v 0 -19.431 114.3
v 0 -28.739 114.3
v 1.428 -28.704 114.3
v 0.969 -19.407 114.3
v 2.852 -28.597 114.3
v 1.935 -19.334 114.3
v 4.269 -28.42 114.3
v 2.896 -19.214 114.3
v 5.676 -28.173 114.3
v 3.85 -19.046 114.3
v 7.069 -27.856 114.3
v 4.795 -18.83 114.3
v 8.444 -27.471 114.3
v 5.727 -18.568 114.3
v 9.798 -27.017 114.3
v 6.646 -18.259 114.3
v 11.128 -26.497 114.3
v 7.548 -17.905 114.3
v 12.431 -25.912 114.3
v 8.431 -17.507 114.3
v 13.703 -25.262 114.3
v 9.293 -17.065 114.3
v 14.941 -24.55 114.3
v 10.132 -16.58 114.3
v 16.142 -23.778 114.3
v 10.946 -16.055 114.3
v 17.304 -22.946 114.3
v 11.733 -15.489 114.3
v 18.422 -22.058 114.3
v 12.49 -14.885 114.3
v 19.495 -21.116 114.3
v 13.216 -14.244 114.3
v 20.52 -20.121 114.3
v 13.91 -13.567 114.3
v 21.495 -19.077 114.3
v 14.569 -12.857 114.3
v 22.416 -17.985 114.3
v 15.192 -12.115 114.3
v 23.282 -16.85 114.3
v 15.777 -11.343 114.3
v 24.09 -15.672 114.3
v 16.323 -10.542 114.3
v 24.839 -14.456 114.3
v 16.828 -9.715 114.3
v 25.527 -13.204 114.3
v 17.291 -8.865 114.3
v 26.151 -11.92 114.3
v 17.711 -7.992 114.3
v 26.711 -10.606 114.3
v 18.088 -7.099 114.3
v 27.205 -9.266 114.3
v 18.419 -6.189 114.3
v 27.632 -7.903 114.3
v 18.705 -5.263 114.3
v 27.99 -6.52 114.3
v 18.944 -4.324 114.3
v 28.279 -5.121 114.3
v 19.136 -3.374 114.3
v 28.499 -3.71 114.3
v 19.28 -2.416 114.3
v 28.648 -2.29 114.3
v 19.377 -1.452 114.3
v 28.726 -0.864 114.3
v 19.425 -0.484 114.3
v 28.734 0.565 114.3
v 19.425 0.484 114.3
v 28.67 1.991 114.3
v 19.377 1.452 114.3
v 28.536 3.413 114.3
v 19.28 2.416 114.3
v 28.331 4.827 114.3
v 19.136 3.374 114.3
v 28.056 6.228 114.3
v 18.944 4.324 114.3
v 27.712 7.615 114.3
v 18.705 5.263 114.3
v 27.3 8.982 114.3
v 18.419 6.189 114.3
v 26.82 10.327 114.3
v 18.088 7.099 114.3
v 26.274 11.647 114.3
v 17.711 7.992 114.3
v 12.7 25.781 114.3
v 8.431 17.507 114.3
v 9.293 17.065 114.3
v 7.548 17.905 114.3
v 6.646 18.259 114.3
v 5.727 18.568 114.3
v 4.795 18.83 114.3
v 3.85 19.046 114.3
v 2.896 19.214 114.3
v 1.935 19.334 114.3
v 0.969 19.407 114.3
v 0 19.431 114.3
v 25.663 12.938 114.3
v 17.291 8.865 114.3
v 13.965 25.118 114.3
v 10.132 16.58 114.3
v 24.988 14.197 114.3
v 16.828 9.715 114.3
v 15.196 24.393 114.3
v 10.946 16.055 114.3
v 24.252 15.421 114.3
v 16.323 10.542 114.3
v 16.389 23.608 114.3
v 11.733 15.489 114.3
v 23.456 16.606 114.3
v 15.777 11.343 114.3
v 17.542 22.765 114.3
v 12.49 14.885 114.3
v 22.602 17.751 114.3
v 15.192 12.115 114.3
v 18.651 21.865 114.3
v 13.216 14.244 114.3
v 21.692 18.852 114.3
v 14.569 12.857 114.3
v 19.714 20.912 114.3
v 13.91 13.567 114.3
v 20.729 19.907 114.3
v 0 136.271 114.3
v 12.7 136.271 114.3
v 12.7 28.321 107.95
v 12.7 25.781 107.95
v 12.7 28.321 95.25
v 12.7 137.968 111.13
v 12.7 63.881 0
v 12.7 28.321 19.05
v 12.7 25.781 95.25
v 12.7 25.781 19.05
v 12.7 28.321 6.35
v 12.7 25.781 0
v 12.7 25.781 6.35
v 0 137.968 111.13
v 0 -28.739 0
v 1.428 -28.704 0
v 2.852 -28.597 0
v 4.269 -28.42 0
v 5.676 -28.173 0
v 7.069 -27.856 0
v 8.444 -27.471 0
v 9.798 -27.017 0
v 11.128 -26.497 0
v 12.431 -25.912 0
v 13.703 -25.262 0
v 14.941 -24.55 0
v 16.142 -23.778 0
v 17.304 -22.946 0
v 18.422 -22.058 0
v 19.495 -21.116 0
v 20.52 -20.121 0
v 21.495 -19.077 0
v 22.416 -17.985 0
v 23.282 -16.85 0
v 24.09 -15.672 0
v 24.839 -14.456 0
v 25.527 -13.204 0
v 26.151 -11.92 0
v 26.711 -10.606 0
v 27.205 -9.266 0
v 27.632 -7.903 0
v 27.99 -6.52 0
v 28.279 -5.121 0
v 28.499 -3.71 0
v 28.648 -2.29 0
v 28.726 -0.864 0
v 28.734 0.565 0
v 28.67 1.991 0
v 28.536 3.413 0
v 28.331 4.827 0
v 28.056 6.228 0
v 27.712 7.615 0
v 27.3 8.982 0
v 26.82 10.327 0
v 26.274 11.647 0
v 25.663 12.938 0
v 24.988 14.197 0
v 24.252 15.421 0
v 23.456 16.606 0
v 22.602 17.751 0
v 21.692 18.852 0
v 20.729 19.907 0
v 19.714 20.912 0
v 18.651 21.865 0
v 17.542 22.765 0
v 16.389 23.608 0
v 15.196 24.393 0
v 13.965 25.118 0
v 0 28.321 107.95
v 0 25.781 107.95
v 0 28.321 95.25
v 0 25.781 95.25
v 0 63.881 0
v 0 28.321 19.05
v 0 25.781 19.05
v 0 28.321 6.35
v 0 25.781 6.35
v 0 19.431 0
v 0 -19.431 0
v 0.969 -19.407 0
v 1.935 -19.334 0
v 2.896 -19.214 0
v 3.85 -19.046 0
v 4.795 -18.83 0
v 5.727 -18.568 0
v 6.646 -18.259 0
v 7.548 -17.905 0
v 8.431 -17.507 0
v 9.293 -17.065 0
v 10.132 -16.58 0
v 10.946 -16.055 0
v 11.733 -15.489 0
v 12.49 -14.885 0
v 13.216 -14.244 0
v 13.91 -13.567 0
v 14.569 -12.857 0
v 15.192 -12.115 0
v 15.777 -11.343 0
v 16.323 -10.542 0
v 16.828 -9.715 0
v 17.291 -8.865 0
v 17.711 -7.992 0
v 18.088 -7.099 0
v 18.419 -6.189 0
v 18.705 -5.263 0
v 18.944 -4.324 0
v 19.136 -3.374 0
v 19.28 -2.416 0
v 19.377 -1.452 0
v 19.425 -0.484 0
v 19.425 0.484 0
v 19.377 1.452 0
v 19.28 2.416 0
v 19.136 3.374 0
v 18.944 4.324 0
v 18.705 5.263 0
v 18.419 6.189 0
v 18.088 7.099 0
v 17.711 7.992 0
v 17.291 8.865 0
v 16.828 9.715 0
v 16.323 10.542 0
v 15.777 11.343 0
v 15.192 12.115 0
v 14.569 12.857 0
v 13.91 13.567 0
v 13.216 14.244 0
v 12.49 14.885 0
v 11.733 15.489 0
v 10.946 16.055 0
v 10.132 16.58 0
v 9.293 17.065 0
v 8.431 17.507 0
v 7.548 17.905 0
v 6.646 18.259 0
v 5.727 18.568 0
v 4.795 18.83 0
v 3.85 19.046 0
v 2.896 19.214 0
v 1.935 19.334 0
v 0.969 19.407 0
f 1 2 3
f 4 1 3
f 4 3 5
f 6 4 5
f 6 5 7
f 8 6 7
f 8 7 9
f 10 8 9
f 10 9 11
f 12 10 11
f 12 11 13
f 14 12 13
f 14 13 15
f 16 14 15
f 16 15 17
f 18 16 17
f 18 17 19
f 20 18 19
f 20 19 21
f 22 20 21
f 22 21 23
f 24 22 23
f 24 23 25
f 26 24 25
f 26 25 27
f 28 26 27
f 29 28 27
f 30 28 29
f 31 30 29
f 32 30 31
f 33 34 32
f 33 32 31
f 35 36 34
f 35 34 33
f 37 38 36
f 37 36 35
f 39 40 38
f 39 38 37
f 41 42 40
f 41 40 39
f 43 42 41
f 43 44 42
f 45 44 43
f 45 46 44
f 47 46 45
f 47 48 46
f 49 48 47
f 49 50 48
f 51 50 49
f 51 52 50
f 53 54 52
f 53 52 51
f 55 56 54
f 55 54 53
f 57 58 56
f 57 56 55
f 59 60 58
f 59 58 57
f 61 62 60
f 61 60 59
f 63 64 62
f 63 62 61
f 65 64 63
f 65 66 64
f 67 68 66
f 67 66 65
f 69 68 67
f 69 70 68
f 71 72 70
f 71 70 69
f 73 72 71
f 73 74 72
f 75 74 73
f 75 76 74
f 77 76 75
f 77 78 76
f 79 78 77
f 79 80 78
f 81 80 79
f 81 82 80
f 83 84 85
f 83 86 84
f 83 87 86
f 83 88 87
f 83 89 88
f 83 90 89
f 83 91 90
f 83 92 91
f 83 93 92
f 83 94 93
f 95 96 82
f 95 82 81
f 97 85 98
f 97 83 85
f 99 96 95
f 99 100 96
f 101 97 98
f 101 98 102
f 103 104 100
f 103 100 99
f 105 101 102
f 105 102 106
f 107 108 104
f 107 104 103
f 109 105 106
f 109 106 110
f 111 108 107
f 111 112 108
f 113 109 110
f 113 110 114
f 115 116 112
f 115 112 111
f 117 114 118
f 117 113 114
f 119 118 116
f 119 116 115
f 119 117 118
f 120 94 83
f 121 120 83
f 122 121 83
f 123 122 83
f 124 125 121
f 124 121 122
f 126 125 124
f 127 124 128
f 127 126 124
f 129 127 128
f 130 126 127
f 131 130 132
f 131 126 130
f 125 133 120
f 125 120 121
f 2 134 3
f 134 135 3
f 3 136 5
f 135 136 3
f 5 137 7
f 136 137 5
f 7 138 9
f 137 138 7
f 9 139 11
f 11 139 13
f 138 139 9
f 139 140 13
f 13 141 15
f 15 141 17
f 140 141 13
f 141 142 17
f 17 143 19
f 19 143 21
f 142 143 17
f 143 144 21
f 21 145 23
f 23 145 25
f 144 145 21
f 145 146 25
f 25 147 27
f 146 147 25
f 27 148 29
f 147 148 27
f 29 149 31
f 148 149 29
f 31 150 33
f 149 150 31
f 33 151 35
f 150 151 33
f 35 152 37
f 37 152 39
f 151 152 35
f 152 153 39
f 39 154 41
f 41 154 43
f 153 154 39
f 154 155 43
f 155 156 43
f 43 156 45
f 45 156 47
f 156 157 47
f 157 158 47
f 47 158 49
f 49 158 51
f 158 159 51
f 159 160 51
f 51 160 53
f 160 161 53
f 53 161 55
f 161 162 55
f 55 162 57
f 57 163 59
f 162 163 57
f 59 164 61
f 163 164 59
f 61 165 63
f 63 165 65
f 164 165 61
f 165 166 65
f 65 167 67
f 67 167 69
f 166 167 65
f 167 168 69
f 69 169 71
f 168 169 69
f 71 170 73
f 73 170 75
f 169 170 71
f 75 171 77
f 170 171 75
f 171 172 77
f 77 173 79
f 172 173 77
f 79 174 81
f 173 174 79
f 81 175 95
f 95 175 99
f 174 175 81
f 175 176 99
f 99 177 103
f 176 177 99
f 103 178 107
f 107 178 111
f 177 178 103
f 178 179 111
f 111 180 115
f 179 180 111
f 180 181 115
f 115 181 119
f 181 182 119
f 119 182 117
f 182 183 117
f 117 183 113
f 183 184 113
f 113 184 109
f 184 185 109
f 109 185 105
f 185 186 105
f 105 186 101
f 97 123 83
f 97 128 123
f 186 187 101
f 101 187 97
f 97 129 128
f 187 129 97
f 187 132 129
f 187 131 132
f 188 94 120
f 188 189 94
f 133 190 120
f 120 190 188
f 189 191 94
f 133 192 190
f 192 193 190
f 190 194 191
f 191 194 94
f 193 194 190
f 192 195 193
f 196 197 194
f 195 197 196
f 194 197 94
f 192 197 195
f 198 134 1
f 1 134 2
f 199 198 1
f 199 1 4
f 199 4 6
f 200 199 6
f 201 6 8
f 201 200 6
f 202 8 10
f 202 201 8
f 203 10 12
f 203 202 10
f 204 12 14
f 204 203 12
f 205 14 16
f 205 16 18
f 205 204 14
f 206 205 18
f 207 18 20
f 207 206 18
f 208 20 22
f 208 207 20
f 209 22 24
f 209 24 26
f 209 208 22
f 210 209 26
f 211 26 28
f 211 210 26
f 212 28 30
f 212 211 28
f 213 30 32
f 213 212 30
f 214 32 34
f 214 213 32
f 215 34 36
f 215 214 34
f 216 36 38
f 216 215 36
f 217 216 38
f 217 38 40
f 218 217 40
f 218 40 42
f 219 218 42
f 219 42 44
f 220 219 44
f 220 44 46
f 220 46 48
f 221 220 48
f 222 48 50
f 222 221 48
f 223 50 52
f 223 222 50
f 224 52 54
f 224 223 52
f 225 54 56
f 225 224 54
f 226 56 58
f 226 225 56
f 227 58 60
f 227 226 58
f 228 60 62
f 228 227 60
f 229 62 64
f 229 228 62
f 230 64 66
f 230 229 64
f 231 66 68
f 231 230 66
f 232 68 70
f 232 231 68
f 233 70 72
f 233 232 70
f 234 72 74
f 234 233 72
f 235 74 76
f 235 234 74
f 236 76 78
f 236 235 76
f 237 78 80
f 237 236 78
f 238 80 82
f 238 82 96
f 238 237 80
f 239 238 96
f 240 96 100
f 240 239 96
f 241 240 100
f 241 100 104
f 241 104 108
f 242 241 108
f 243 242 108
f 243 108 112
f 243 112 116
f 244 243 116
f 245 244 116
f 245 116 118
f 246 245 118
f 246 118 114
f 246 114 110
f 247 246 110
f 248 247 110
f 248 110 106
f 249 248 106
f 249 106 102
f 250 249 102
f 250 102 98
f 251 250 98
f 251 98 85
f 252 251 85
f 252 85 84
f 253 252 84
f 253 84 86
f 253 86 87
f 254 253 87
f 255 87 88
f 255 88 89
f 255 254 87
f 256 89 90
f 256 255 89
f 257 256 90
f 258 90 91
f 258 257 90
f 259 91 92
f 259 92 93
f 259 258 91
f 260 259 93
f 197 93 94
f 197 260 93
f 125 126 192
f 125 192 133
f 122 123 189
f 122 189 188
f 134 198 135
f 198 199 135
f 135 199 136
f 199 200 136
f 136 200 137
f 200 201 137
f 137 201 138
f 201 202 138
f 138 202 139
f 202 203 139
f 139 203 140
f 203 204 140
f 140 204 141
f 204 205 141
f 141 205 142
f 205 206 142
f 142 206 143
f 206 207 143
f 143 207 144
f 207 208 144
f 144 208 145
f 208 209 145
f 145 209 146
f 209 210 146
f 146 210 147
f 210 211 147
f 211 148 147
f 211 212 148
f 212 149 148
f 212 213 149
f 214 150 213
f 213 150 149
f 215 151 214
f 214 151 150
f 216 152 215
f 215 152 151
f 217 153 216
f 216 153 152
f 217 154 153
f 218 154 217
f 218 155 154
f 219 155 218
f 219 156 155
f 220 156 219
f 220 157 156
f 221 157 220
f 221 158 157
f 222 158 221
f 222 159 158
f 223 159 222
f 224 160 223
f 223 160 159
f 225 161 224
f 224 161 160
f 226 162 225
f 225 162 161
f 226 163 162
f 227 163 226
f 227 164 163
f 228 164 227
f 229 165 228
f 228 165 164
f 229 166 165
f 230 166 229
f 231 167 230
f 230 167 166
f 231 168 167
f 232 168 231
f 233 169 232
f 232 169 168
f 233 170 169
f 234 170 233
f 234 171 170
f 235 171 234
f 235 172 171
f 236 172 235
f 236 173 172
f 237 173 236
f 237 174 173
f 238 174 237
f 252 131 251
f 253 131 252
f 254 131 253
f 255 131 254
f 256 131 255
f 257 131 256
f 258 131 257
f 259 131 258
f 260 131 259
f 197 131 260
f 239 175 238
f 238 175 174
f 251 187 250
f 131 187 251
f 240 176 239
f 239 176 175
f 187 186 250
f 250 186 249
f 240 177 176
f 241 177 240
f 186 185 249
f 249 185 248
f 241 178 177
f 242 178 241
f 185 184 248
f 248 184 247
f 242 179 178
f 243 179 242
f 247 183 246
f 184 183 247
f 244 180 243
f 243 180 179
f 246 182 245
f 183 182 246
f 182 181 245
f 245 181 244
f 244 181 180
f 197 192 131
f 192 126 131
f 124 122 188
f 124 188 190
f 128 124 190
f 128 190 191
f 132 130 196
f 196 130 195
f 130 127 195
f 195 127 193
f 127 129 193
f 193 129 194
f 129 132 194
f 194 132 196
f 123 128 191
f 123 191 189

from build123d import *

# Parameters (mm, degrees)
PAD_DEPTH       = 114.3
SKETCH001_W     = 2.54
SKETCH001_H     = 12.7
POCKET_DEPTH    = 12.701
POCKET001_DEPTH = 12.701
CHAMFER_SIZE    = 3.81


with BuildPart() as part:
    # Sketch → Pad (new body)
    with BuildSketch(Plane.XY):
        with BuildLine():
            Line((0, 140.081), (12.7, 140.081))
            Line((12.7, 140.081), (12.7, 25.781))
            ThreePointArc((0, -28.739345), (27.989989, -6.520004), (12.7, 25.781))
            Line((0, -19.431), (0, -28.739345))
            ThreePointArc((0, -19.431), (19.431, 0), (0, 19.431))
            Line((0, 140.081), (0, 19.431))
        make_face()
    extrude(amount=PAD_DEPTH)

    # Sketch001 (on Face2 of Pad) → Pocket (cut, through all)
    with BuildSketch(Plane.YZ.offset(12.7)):
        with Locations((27.051, 12.7)):
            Rectangle(SKETCH001_W, SKETCH001_H)
        with Locations((27.051, 101.6)):
            Rectangle(SKETCH001_W, SKETCH001_H)
    extrude(amount=-POCKET_DEPTH, mode=Mode.SUBTRACT)

    # Sketch002 → Pocket001 (cut, through all)
    with BuildSketch(Plane.YZ.offset(12.7)):
        Polygon((63.881, 0), (140.081, 114.3), (140.081, 0), align=None)
    extrude(amount=-POCKET001_DEPTH, mode=Mode.SUBTRACT)

    # Chamfer
    chamfer_edges = [part.edges().sort_by_distance(p)[0] for p in [
        (6.35, 140.081, 114.3),
    ]]
    chamfer(chamfer_edges, length=CHAMFER_SIZE)


solid = part.part
